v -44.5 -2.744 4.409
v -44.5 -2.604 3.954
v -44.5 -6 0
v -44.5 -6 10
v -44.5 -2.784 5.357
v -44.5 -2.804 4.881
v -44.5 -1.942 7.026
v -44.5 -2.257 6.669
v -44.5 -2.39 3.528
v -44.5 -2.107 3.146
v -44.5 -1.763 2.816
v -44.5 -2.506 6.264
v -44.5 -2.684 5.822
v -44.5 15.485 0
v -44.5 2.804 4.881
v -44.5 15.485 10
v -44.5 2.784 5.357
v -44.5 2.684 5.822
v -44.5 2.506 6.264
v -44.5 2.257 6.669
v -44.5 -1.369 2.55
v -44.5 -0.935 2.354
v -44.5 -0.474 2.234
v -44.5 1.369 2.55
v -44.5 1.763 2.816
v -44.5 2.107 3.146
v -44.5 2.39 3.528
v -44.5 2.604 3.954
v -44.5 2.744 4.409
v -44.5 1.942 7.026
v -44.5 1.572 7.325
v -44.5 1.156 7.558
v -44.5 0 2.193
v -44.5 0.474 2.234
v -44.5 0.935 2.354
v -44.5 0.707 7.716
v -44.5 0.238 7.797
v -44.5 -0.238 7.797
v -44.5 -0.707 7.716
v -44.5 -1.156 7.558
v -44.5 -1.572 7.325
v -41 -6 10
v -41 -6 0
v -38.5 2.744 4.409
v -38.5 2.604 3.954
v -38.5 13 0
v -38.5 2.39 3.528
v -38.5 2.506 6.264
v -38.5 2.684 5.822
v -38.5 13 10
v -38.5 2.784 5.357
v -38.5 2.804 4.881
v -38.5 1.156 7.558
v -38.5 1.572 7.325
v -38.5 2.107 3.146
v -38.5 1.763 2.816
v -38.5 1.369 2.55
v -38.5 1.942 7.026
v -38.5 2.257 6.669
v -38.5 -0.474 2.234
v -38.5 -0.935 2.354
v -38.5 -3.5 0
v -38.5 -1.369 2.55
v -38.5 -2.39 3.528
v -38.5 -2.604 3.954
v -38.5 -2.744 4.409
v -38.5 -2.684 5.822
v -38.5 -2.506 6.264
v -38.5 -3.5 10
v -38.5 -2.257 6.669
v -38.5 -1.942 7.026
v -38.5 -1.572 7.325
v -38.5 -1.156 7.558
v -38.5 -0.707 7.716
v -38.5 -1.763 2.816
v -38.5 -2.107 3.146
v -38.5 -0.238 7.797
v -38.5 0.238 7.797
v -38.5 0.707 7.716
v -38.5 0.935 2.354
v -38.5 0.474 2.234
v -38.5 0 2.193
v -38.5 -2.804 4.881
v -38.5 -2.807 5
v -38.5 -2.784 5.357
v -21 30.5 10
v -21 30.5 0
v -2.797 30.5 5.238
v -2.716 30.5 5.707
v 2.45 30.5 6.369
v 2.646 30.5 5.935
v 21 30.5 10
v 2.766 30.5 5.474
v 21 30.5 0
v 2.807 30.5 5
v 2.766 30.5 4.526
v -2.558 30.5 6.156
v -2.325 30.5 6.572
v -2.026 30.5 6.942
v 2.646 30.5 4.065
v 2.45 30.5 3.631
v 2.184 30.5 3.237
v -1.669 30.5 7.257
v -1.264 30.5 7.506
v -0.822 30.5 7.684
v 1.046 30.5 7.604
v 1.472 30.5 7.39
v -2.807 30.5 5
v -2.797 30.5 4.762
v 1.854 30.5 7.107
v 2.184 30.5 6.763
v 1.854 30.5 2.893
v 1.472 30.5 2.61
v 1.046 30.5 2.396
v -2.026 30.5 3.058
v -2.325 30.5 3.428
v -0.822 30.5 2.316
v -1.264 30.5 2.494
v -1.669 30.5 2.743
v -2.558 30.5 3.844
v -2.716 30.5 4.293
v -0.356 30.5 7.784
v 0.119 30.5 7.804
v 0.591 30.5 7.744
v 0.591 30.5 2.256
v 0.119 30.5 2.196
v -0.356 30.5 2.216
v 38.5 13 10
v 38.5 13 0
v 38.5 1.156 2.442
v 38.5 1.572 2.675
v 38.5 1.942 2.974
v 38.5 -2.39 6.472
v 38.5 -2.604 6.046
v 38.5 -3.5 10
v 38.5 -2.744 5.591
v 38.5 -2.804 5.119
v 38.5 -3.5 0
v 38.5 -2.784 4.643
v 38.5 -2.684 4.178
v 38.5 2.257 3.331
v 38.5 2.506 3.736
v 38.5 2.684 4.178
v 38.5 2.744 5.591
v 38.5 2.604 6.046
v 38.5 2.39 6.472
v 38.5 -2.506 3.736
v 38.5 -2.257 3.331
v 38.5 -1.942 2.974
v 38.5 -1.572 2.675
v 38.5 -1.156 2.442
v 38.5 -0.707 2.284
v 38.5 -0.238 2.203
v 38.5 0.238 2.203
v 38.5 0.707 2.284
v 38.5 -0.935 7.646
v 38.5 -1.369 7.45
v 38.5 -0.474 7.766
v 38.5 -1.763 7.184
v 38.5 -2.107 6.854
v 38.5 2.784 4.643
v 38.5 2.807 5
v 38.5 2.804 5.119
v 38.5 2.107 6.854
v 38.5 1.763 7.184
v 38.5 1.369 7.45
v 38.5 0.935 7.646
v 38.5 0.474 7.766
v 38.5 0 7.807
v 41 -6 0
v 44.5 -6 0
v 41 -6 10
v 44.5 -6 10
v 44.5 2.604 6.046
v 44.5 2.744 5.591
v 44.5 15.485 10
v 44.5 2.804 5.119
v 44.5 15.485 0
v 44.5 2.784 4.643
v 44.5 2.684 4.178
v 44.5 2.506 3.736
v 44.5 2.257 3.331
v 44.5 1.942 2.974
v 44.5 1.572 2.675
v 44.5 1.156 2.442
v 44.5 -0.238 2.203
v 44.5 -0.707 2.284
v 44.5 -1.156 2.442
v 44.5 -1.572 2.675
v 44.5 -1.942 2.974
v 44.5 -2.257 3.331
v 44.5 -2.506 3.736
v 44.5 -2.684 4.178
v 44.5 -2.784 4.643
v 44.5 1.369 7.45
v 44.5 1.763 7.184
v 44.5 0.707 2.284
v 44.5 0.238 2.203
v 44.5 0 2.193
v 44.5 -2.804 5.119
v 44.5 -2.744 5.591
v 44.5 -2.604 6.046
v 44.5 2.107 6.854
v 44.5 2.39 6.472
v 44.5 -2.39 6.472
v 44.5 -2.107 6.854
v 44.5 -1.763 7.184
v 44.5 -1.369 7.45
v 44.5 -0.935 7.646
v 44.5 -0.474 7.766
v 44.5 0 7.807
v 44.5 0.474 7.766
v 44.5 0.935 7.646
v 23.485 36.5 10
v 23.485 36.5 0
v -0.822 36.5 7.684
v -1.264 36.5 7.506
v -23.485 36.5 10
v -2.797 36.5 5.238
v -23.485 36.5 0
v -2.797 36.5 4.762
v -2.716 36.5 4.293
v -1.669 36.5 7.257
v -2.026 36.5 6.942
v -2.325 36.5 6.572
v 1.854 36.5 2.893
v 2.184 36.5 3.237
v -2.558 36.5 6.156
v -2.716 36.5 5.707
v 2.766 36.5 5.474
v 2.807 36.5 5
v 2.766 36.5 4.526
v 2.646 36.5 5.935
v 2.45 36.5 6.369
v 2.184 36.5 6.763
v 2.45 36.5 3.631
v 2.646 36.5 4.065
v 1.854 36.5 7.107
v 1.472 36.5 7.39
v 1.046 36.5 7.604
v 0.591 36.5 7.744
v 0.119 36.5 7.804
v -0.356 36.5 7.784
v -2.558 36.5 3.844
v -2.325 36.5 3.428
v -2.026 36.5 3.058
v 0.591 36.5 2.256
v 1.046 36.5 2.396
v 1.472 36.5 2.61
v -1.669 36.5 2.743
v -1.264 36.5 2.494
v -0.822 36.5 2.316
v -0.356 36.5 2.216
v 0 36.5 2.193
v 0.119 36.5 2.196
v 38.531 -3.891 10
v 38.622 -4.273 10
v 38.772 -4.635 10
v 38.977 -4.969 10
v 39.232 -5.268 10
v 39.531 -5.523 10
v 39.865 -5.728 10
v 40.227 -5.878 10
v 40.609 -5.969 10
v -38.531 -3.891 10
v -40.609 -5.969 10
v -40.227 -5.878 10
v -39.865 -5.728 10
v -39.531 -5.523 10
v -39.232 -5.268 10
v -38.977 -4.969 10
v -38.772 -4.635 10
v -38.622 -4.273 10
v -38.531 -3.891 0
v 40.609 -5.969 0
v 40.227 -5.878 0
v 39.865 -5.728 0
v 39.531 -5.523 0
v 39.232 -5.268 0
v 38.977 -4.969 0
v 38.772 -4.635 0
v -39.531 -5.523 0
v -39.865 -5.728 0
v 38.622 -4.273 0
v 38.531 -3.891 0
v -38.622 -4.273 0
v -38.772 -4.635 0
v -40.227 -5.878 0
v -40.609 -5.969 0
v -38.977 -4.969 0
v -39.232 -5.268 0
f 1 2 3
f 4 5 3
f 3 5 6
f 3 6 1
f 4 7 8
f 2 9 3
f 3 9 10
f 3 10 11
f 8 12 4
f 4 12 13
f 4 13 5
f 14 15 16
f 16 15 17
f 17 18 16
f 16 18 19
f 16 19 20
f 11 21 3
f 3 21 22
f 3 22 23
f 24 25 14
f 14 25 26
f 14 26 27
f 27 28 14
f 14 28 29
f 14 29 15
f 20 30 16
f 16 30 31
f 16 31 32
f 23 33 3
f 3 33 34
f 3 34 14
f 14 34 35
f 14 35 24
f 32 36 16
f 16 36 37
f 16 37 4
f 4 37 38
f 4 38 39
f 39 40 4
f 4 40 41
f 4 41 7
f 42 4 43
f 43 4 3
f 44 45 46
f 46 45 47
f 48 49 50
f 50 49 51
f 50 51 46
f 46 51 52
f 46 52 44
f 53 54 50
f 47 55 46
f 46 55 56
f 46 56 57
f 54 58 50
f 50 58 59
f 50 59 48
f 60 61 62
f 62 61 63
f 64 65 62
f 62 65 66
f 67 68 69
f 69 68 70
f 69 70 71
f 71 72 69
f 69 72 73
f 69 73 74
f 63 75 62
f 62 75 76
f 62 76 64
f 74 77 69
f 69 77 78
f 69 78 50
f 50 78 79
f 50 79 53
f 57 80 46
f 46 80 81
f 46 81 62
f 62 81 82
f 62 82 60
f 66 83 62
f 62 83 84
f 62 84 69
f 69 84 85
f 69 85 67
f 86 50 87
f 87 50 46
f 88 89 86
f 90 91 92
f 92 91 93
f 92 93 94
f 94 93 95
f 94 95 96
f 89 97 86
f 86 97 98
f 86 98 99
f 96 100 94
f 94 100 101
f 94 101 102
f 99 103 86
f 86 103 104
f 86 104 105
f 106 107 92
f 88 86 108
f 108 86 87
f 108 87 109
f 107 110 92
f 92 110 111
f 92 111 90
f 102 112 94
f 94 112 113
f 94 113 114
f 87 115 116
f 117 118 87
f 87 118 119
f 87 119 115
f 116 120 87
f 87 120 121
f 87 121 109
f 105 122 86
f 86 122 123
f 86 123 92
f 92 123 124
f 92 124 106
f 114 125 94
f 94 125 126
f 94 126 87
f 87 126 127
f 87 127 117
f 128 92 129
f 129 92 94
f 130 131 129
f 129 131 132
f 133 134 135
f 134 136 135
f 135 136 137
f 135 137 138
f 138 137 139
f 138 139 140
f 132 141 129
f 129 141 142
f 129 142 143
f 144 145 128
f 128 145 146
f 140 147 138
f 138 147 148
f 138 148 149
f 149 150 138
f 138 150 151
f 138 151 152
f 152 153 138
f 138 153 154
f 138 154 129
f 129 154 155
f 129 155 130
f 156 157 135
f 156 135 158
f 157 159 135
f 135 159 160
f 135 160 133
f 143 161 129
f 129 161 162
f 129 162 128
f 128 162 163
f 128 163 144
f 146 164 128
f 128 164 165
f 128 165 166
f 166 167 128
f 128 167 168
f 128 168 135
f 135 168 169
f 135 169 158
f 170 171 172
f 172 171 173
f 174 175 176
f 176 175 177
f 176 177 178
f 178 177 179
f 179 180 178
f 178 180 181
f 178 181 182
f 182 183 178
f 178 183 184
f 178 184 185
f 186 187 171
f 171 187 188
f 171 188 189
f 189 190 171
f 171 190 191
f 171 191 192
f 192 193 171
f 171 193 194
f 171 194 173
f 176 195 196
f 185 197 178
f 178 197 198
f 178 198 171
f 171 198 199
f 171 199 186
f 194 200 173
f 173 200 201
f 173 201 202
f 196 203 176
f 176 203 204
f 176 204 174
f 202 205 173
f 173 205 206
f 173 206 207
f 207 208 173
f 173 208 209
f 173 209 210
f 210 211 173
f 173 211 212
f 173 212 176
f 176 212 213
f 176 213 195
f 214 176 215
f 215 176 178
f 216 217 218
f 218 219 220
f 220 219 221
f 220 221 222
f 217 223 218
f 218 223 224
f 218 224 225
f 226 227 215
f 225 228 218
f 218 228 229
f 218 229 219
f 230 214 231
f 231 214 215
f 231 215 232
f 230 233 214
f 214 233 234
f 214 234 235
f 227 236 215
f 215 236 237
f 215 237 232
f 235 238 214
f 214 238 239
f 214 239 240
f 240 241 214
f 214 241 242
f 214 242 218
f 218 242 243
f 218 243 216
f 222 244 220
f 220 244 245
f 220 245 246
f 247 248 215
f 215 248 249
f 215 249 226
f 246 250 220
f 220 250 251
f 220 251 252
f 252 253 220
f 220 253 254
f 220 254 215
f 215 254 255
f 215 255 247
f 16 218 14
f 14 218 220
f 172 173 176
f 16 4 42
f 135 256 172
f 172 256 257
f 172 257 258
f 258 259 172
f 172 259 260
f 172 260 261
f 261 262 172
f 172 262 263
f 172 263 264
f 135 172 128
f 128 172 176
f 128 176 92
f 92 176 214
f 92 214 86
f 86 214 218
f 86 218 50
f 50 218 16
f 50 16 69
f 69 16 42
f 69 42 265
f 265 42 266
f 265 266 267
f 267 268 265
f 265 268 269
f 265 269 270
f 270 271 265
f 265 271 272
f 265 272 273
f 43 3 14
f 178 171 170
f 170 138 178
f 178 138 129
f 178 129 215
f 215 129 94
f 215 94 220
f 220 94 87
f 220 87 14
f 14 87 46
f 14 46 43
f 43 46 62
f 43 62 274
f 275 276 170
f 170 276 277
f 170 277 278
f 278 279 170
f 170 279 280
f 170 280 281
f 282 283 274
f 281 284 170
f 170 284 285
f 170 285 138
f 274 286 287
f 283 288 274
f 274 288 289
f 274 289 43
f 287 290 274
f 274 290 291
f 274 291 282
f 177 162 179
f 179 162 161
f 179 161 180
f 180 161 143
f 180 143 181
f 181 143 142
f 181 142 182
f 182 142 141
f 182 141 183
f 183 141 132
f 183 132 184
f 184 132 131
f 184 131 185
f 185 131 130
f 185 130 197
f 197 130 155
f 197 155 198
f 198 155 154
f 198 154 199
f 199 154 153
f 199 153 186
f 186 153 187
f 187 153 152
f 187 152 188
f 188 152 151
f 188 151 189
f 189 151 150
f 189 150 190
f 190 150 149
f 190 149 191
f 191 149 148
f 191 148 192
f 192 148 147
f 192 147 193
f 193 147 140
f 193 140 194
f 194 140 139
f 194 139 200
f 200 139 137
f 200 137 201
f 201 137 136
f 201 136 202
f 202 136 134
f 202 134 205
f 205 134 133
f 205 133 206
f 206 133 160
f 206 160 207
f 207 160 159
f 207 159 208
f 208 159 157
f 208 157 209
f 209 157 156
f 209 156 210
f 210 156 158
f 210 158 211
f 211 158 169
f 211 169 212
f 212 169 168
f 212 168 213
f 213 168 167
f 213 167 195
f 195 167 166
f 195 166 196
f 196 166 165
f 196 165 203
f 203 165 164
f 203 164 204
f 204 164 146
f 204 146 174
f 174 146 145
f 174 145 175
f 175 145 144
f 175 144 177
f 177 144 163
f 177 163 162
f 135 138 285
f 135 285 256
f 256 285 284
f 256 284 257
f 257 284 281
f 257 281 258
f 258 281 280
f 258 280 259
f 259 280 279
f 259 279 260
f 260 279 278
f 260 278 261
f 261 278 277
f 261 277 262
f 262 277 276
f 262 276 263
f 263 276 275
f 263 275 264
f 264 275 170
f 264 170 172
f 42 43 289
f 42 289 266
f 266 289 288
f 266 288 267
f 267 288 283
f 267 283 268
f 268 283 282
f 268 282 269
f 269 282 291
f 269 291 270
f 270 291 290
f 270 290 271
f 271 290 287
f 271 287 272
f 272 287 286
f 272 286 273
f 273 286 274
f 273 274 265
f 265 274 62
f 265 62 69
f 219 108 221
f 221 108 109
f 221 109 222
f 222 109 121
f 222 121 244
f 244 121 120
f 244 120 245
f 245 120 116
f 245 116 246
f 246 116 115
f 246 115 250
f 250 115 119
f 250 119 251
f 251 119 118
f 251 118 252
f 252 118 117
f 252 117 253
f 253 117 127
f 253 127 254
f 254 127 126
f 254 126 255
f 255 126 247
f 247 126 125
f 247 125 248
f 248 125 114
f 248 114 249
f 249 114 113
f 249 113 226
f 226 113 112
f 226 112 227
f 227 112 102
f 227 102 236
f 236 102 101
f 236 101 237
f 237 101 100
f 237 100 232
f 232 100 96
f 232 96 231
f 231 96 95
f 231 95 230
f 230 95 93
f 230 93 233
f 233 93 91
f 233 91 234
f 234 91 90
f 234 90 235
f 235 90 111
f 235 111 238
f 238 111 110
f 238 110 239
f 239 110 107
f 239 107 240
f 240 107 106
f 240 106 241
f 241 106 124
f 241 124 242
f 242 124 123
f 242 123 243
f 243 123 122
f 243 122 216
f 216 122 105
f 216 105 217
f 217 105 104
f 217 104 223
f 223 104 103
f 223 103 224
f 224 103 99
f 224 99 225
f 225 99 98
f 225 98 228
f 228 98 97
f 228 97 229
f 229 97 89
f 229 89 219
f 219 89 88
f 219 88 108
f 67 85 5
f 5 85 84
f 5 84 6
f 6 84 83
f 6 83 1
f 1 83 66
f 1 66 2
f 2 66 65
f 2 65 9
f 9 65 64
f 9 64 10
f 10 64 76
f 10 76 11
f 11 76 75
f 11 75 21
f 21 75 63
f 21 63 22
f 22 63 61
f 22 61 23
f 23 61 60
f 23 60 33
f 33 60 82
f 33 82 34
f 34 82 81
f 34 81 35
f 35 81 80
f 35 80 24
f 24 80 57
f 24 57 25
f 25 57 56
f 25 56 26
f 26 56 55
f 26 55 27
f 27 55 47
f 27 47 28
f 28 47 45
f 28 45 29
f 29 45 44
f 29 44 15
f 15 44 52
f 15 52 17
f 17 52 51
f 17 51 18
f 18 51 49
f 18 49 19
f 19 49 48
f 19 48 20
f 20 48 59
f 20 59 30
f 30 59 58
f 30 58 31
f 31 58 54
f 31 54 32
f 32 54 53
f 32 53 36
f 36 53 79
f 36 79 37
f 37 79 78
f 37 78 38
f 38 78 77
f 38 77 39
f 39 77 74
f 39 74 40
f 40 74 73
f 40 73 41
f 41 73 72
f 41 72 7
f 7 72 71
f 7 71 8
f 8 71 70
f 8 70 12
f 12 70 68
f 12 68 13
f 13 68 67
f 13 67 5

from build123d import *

# Parameters (mm, degrees)
BOSS_EXTRUDE1_DEPTH = 10
SKETCH3_R           = 2.8067
CUT_EXTRUDE1_DEPTH  = 59.416607228
FILLET1_R           = 2.5
CIRPATTERN3_COUNT   = 3
CIRPATTERN3_ANGLE   = 180


with BuildPart() as part:
    # Sketch1 → Boss-Extrude1 (new body)
    with BuildSketch(Plane.XY):
        Polygon((-44.5, -6), (-38.5, -6), (-38.5, 13), (-21, 30.5), (21, 30.5), (38.5, 13), (38.5, -6), (44.5, -6), (44.5, 15.485281374), (23.485281374, 36.5), (-23.485281374, 36.5), (-44.5, 15.485281374), align=None)
    extrude(amount=BOSS_EXTRUDE1_DEPTH)

    # Sketch3 → Cut-Extrude1 (cut, through all)
    with BuildSketch(Plane(origin=(0, 0, 0), x_dir=(0, 0, -1), z_dir=(1, 0, 0))):
        with Locations((-5, 0)):
            Circle(SKETCH3_R)
    cut_extrude1 = extrude(amount=CUT_EXTRUDE1_DEPTH, mode=Mode.SUBTRACT)

    # Fillet1
    fillet1_edges = [part.edges().sort_by_distance(p)[0] for p in [
        (38.5, -6, 5),
        (-38.5, -6, 5),
    ]]
    fillet(fillet1_edges, radius=FILLET1_R)

    # CirPattern3: Cut-Extrude1 ×3 about axis
    cirpattern3_axis = Axis((0, 0, 0), (0, 0, 1))
    for i in range(1, CIRPATTERN3_COUNT):
        add(cut_extrude1.rotate(cirpattern3_axis, i * CIRPATTERN3_ANGLE / (CIRPATTERN3_COUNT - 1)), mode=Mode.SUBTRACT)


solid = part.part
